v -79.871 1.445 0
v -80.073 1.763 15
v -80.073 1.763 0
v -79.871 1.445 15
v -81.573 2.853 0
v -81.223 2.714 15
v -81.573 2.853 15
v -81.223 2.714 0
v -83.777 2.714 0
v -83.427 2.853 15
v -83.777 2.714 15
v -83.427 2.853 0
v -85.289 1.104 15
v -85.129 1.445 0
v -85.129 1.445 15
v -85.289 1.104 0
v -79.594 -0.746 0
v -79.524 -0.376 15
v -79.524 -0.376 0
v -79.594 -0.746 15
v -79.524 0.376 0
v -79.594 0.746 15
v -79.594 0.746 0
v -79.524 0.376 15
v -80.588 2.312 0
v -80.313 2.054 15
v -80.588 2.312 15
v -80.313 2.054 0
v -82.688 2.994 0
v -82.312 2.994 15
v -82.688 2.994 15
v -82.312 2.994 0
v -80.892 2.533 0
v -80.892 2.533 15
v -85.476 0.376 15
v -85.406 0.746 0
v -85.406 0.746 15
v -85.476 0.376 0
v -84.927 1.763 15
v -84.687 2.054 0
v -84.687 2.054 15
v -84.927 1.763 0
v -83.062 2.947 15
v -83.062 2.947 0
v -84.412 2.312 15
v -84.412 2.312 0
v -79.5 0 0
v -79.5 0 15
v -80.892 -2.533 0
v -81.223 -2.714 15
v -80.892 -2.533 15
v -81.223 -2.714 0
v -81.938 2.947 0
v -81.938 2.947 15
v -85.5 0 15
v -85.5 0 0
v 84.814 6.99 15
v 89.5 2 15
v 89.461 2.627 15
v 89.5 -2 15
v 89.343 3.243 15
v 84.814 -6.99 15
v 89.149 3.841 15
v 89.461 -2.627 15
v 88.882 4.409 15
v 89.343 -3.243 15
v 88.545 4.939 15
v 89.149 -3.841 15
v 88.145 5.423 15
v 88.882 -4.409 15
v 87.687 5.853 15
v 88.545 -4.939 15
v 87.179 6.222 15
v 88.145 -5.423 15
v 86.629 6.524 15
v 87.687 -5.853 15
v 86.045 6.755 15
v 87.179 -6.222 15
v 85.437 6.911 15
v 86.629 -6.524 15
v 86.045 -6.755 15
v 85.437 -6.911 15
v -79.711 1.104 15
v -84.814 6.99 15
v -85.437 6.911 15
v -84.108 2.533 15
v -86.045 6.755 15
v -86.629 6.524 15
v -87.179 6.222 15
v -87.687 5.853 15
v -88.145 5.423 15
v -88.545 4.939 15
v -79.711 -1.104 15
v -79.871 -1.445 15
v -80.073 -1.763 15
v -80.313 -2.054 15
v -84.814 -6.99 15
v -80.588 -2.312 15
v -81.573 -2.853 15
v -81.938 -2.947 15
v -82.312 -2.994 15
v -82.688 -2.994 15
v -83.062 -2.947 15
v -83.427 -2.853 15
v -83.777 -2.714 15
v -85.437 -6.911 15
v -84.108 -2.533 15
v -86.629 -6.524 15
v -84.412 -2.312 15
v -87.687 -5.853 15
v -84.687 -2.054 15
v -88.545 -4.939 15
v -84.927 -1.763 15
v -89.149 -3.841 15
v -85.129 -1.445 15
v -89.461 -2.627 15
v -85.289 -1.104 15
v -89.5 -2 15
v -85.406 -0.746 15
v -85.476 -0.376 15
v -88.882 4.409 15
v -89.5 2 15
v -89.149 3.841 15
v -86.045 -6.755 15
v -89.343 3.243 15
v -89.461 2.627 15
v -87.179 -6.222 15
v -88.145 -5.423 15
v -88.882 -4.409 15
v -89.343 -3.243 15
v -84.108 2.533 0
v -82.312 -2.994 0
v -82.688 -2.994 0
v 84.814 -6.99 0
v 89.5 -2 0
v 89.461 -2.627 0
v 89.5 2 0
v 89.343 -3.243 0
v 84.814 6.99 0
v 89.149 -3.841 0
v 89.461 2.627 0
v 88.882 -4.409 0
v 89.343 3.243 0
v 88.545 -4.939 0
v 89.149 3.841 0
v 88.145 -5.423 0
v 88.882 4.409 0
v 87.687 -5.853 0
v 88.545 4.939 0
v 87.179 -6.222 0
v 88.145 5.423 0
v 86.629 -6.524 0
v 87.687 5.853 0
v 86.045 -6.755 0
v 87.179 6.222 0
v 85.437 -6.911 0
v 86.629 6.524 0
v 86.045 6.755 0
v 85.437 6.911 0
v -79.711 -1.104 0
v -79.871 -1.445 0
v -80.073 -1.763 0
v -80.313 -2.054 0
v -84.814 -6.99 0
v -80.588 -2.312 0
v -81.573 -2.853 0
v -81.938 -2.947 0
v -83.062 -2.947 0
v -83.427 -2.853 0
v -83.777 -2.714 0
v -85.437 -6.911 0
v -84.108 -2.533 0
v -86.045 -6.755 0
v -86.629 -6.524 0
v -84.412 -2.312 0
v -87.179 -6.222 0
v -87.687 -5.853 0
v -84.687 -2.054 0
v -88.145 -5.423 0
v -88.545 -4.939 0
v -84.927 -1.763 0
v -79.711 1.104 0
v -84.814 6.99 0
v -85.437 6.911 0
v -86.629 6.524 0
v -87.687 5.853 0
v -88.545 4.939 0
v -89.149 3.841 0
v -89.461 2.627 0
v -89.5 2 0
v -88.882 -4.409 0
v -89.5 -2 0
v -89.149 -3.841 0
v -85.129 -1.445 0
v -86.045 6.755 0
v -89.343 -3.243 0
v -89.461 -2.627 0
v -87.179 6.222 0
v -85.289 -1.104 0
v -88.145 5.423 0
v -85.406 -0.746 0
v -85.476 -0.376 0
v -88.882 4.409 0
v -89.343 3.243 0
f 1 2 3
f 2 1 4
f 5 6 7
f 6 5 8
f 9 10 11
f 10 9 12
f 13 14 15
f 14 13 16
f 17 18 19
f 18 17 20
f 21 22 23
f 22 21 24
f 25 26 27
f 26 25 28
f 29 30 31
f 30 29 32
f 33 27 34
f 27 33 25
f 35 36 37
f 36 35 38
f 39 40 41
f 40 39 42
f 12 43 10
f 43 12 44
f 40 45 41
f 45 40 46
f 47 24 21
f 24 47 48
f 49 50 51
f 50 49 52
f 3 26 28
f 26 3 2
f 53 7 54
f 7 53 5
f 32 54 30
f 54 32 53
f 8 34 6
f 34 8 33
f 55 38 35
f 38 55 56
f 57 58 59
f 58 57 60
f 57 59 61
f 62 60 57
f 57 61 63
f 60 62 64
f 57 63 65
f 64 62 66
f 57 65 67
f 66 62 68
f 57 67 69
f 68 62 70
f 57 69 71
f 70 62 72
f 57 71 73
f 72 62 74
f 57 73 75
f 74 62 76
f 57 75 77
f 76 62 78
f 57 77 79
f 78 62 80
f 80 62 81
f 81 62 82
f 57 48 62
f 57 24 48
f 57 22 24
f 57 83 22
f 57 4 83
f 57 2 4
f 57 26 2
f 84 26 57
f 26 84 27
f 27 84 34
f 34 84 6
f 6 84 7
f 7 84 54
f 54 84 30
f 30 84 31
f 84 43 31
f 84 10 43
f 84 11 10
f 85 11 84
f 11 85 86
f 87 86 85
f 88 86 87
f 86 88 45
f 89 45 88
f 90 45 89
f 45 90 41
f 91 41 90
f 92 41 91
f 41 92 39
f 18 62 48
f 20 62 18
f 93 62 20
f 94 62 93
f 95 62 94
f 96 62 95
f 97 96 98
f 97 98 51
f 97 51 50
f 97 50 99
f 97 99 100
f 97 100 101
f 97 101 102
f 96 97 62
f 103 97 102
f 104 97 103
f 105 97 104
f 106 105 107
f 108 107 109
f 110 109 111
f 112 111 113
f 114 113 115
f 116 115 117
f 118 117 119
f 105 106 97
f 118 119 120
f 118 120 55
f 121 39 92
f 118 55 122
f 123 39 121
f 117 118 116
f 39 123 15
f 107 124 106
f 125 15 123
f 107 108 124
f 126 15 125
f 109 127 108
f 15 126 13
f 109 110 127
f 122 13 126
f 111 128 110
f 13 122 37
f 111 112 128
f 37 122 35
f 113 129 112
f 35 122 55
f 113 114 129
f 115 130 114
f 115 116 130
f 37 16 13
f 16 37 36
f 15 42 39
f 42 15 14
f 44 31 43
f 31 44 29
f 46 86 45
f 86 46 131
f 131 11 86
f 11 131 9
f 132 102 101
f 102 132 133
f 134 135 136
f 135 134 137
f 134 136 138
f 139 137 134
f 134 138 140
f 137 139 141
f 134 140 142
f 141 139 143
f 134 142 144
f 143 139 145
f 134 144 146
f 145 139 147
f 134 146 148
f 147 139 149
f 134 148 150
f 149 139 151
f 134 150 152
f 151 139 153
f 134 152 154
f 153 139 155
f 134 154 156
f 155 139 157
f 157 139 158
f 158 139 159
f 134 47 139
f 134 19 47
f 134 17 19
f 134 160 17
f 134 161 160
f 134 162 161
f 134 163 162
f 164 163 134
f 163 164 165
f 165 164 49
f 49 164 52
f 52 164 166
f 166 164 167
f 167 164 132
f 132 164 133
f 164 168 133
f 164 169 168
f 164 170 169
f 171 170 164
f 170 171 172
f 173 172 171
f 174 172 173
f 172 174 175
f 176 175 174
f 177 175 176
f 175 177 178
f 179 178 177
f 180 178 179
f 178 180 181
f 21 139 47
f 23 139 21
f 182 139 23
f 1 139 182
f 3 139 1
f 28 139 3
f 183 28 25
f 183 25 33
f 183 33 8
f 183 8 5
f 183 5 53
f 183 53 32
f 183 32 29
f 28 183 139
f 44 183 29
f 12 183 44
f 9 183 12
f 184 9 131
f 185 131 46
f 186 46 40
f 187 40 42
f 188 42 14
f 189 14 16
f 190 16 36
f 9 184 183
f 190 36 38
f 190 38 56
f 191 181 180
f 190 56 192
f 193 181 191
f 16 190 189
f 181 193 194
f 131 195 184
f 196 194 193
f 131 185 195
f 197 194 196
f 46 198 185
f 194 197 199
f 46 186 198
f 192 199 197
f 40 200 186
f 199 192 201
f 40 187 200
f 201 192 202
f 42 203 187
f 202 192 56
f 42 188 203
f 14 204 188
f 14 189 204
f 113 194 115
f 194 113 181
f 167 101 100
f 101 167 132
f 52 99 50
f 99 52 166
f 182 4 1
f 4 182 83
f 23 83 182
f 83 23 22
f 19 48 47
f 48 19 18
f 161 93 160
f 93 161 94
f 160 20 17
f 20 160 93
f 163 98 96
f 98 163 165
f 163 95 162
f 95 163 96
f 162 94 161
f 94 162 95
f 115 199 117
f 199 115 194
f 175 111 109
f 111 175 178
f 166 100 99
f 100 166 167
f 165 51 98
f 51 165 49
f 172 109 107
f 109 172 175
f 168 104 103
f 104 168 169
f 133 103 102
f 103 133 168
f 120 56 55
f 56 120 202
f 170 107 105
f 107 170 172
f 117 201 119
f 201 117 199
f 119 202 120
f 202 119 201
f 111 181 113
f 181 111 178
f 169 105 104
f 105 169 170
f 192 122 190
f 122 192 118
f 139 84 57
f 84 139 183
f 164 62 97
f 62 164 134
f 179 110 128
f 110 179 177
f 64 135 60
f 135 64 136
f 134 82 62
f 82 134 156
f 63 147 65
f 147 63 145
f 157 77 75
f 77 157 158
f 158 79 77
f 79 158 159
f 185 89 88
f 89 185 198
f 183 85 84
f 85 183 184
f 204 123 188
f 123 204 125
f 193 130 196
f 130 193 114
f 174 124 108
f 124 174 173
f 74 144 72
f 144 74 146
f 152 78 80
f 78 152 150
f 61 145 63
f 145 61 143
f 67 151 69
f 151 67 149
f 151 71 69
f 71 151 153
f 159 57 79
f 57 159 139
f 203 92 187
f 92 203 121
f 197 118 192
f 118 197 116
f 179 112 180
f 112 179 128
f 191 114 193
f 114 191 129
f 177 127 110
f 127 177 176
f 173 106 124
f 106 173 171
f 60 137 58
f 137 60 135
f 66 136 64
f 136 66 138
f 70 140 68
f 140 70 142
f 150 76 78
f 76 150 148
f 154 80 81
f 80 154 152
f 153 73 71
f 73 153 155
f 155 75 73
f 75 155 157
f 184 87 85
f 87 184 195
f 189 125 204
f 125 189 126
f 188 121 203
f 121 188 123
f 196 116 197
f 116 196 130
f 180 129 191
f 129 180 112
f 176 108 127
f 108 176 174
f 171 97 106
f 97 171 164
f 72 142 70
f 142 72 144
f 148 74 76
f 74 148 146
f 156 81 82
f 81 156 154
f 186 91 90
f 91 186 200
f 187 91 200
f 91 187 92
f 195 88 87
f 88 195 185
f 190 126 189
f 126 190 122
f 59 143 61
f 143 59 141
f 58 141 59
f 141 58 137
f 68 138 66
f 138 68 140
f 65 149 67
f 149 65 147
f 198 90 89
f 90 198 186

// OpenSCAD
$fn = 50;


difference() {
	union() {
		hull() {
			translate(v = [-84.5000000000, 2.0000000000, 0]) {
				cylinder(h = 15, r = 5);
			}
			translate(v = [84.5000000000, 2.0000000000, 0]) {
				cylinder(h = 15, r = 5);
			}
			translate(v = [-84.5000000000, -2.0000000000, 0]) {
				cylinder(h = 15, r = 5);
			}
			translate(v = [84.5000000000, -2.0000000000, 0]) {
				cylinder(h = 15, r = 5);
			}
		}
	}
	union() {
		translate(v = [-82.5000000000, 0.0000000000, 0]) {
			cylinder(h = 15, r = 3.0000000000);
		}
		translate(v = [-82.5000000000, 0.0000000000, 0]) {
			cylinder(h = 15, r = 1.5000000000);
		}
		translate(v = [-82.5000000000, 0.0000000000, 0]) {
			cylinder(h = 15, r = 1.5000000000);
		}
		translate(v = [-82.5000000000, 0.0000000000, 0]) {
			cylinder(h = 15, r = 1.5000000000);
		}
	}
}
